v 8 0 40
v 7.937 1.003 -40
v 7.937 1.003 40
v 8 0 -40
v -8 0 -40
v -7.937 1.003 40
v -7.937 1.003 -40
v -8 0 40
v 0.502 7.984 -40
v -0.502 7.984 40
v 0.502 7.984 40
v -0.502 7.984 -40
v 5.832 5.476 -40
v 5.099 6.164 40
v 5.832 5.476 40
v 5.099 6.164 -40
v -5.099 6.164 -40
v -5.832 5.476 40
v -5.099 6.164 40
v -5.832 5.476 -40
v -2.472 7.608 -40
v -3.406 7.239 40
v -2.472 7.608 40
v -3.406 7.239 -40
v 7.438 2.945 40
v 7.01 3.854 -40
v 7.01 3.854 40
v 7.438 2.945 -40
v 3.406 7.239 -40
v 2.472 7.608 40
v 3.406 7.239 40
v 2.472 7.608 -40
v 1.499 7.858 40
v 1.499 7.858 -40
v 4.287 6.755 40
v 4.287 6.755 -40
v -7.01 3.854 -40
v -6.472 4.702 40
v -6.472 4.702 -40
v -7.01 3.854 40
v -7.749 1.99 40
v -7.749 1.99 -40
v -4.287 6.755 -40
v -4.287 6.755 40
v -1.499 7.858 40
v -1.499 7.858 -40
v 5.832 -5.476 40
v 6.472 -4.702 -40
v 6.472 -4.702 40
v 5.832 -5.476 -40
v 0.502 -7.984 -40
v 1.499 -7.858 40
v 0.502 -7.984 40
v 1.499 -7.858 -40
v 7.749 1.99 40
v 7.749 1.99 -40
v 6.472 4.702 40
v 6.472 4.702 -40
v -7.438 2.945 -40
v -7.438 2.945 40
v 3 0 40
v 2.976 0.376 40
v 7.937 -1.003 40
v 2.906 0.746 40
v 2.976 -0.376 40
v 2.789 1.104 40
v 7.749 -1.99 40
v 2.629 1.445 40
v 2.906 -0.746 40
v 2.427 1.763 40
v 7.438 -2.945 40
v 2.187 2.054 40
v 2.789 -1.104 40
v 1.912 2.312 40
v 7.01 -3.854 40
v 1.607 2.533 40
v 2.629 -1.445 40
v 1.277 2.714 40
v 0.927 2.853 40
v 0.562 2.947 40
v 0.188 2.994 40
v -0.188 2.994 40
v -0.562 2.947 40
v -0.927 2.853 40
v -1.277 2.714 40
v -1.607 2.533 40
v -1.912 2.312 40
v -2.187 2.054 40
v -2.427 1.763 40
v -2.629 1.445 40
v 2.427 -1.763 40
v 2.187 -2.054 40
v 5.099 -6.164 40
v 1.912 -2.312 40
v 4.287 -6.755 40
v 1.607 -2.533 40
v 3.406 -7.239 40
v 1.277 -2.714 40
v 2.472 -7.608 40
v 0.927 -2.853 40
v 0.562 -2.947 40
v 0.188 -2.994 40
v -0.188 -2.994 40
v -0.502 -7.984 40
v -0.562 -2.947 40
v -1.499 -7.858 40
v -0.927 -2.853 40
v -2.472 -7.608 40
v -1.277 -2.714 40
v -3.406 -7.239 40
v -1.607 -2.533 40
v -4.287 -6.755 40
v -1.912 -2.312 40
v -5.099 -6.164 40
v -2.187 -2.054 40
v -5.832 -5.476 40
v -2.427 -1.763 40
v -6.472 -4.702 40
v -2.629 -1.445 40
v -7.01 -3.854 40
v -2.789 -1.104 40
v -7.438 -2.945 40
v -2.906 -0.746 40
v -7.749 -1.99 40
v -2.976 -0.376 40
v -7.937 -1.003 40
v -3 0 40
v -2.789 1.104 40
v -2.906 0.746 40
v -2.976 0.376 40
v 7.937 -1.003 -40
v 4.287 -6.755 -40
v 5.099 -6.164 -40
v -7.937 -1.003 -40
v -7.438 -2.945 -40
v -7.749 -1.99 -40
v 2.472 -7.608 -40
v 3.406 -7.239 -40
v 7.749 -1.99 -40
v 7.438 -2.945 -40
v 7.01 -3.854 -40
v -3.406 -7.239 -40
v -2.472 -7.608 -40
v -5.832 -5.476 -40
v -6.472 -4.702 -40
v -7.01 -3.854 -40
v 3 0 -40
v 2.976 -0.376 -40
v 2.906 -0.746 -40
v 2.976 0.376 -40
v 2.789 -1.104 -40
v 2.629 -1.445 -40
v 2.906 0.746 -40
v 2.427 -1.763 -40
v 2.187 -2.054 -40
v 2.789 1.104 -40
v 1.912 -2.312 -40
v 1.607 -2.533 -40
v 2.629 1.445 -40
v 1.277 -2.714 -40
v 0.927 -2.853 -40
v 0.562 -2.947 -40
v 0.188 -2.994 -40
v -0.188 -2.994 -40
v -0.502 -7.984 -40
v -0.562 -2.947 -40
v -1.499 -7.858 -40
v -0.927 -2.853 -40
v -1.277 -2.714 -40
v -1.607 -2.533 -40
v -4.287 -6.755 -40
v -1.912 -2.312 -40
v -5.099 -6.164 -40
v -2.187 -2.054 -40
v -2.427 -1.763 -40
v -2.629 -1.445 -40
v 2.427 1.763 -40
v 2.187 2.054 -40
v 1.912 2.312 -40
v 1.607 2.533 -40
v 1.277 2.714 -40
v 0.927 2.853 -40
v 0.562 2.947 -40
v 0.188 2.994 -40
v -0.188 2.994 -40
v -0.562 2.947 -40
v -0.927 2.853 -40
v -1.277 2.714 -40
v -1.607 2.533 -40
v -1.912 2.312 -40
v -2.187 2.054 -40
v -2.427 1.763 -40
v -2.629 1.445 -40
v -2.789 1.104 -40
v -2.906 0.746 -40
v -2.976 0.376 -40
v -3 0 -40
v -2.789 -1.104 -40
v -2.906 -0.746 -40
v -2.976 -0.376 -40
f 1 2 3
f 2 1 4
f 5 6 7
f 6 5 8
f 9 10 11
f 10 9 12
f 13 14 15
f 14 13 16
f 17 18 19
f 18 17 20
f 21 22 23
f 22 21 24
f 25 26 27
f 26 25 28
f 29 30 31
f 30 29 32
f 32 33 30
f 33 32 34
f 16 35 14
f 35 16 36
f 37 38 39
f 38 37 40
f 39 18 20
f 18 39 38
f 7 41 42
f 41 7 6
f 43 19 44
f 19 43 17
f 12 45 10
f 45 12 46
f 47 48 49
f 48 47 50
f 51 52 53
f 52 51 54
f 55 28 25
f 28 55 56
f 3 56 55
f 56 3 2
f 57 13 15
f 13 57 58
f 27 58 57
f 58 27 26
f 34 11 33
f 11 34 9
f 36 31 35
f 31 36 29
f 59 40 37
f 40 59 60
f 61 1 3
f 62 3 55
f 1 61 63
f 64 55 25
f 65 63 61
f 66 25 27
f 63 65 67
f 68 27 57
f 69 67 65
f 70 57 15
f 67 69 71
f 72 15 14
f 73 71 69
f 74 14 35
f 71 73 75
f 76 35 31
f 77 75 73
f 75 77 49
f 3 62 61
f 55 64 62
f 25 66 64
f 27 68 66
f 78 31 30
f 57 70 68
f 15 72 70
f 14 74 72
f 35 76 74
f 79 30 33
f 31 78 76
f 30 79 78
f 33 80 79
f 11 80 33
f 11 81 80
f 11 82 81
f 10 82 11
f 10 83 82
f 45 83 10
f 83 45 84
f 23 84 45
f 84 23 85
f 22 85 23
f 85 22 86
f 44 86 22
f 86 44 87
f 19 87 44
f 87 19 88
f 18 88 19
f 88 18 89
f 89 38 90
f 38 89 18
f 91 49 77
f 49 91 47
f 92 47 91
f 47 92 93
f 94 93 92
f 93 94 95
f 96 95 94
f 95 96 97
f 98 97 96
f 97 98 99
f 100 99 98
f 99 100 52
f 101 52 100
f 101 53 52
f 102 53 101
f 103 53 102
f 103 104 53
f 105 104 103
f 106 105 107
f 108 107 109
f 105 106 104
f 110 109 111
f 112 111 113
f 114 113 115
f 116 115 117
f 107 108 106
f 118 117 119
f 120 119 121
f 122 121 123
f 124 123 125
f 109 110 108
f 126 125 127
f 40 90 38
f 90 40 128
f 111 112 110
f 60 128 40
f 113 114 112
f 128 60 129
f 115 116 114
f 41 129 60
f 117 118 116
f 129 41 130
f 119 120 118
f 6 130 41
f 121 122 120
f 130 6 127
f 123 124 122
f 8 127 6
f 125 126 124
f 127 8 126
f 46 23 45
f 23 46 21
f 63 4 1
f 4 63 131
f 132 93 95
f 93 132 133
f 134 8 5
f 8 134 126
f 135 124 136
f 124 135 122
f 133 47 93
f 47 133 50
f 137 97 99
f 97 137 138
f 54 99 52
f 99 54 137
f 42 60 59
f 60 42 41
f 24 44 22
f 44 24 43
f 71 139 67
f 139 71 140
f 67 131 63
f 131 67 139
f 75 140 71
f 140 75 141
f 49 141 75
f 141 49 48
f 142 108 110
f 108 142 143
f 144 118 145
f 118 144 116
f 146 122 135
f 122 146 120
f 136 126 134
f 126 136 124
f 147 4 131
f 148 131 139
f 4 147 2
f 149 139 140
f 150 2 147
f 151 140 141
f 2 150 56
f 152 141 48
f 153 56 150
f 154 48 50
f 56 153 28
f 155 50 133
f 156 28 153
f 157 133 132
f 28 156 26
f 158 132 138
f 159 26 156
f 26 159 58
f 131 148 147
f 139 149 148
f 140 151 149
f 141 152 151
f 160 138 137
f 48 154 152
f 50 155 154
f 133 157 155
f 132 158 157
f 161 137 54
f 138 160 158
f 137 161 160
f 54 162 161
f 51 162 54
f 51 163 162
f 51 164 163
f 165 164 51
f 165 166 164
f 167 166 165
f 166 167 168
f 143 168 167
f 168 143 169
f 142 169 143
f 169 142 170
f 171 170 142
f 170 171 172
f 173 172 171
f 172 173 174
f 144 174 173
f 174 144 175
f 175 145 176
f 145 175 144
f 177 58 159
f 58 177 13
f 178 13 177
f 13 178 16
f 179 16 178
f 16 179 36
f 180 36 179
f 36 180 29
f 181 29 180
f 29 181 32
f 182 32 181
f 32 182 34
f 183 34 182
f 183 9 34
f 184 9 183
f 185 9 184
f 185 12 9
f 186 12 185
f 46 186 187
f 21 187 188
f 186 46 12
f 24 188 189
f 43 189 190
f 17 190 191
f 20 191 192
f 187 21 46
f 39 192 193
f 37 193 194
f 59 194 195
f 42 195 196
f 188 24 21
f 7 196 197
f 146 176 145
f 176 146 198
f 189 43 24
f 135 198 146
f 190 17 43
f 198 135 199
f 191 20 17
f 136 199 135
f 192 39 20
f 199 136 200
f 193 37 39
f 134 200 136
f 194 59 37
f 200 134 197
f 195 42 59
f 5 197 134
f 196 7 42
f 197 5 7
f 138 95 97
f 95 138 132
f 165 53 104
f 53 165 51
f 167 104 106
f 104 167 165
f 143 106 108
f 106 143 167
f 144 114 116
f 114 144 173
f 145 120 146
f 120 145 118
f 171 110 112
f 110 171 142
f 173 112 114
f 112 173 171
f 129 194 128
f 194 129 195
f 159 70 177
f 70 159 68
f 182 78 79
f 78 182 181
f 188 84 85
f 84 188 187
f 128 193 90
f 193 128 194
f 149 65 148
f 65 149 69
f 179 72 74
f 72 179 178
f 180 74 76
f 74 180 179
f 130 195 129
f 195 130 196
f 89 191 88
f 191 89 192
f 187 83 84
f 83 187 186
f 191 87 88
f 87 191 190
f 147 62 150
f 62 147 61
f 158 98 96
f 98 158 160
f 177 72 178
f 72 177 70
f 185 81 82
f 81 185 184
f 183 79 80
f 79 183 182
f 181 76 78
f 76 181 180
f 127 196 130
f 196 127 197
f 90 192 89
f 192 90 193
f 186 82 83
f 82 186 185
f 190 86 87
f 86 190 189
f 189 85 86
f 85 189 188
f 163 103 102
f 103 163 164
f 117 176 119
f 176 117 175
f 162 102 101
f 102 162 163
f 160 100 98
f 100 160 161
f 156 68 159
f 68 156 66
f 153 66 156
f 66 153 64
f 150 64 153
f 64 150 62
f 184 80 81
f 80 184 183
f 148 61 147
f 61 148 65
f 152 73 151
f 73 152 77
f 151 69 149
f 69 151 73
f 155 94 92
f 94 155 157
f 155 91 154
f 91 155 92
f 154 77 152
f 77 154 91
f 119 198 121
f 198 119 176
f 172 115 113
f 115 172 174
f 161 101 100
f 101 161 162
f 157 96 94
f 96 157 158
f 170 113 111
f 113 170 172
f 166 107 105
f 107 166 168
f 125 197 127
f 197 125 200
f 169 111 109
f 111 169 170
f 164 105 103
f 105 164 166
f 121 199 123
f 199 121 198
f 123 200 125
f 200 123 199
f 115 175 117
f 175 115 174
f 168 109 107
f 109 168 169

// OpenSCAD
$fn = 50;


difference() {
	union() {
		translate(v = [0, 0, -40.0000000000]) {
			cylinder(h = 80, r = 8.0000000000);
		}
	}
	union() {
		translate(v = [0, 0, -100.0000000000]) {
			cylinder(h = 200, r = 3.0000000000);
		}
	}
}
